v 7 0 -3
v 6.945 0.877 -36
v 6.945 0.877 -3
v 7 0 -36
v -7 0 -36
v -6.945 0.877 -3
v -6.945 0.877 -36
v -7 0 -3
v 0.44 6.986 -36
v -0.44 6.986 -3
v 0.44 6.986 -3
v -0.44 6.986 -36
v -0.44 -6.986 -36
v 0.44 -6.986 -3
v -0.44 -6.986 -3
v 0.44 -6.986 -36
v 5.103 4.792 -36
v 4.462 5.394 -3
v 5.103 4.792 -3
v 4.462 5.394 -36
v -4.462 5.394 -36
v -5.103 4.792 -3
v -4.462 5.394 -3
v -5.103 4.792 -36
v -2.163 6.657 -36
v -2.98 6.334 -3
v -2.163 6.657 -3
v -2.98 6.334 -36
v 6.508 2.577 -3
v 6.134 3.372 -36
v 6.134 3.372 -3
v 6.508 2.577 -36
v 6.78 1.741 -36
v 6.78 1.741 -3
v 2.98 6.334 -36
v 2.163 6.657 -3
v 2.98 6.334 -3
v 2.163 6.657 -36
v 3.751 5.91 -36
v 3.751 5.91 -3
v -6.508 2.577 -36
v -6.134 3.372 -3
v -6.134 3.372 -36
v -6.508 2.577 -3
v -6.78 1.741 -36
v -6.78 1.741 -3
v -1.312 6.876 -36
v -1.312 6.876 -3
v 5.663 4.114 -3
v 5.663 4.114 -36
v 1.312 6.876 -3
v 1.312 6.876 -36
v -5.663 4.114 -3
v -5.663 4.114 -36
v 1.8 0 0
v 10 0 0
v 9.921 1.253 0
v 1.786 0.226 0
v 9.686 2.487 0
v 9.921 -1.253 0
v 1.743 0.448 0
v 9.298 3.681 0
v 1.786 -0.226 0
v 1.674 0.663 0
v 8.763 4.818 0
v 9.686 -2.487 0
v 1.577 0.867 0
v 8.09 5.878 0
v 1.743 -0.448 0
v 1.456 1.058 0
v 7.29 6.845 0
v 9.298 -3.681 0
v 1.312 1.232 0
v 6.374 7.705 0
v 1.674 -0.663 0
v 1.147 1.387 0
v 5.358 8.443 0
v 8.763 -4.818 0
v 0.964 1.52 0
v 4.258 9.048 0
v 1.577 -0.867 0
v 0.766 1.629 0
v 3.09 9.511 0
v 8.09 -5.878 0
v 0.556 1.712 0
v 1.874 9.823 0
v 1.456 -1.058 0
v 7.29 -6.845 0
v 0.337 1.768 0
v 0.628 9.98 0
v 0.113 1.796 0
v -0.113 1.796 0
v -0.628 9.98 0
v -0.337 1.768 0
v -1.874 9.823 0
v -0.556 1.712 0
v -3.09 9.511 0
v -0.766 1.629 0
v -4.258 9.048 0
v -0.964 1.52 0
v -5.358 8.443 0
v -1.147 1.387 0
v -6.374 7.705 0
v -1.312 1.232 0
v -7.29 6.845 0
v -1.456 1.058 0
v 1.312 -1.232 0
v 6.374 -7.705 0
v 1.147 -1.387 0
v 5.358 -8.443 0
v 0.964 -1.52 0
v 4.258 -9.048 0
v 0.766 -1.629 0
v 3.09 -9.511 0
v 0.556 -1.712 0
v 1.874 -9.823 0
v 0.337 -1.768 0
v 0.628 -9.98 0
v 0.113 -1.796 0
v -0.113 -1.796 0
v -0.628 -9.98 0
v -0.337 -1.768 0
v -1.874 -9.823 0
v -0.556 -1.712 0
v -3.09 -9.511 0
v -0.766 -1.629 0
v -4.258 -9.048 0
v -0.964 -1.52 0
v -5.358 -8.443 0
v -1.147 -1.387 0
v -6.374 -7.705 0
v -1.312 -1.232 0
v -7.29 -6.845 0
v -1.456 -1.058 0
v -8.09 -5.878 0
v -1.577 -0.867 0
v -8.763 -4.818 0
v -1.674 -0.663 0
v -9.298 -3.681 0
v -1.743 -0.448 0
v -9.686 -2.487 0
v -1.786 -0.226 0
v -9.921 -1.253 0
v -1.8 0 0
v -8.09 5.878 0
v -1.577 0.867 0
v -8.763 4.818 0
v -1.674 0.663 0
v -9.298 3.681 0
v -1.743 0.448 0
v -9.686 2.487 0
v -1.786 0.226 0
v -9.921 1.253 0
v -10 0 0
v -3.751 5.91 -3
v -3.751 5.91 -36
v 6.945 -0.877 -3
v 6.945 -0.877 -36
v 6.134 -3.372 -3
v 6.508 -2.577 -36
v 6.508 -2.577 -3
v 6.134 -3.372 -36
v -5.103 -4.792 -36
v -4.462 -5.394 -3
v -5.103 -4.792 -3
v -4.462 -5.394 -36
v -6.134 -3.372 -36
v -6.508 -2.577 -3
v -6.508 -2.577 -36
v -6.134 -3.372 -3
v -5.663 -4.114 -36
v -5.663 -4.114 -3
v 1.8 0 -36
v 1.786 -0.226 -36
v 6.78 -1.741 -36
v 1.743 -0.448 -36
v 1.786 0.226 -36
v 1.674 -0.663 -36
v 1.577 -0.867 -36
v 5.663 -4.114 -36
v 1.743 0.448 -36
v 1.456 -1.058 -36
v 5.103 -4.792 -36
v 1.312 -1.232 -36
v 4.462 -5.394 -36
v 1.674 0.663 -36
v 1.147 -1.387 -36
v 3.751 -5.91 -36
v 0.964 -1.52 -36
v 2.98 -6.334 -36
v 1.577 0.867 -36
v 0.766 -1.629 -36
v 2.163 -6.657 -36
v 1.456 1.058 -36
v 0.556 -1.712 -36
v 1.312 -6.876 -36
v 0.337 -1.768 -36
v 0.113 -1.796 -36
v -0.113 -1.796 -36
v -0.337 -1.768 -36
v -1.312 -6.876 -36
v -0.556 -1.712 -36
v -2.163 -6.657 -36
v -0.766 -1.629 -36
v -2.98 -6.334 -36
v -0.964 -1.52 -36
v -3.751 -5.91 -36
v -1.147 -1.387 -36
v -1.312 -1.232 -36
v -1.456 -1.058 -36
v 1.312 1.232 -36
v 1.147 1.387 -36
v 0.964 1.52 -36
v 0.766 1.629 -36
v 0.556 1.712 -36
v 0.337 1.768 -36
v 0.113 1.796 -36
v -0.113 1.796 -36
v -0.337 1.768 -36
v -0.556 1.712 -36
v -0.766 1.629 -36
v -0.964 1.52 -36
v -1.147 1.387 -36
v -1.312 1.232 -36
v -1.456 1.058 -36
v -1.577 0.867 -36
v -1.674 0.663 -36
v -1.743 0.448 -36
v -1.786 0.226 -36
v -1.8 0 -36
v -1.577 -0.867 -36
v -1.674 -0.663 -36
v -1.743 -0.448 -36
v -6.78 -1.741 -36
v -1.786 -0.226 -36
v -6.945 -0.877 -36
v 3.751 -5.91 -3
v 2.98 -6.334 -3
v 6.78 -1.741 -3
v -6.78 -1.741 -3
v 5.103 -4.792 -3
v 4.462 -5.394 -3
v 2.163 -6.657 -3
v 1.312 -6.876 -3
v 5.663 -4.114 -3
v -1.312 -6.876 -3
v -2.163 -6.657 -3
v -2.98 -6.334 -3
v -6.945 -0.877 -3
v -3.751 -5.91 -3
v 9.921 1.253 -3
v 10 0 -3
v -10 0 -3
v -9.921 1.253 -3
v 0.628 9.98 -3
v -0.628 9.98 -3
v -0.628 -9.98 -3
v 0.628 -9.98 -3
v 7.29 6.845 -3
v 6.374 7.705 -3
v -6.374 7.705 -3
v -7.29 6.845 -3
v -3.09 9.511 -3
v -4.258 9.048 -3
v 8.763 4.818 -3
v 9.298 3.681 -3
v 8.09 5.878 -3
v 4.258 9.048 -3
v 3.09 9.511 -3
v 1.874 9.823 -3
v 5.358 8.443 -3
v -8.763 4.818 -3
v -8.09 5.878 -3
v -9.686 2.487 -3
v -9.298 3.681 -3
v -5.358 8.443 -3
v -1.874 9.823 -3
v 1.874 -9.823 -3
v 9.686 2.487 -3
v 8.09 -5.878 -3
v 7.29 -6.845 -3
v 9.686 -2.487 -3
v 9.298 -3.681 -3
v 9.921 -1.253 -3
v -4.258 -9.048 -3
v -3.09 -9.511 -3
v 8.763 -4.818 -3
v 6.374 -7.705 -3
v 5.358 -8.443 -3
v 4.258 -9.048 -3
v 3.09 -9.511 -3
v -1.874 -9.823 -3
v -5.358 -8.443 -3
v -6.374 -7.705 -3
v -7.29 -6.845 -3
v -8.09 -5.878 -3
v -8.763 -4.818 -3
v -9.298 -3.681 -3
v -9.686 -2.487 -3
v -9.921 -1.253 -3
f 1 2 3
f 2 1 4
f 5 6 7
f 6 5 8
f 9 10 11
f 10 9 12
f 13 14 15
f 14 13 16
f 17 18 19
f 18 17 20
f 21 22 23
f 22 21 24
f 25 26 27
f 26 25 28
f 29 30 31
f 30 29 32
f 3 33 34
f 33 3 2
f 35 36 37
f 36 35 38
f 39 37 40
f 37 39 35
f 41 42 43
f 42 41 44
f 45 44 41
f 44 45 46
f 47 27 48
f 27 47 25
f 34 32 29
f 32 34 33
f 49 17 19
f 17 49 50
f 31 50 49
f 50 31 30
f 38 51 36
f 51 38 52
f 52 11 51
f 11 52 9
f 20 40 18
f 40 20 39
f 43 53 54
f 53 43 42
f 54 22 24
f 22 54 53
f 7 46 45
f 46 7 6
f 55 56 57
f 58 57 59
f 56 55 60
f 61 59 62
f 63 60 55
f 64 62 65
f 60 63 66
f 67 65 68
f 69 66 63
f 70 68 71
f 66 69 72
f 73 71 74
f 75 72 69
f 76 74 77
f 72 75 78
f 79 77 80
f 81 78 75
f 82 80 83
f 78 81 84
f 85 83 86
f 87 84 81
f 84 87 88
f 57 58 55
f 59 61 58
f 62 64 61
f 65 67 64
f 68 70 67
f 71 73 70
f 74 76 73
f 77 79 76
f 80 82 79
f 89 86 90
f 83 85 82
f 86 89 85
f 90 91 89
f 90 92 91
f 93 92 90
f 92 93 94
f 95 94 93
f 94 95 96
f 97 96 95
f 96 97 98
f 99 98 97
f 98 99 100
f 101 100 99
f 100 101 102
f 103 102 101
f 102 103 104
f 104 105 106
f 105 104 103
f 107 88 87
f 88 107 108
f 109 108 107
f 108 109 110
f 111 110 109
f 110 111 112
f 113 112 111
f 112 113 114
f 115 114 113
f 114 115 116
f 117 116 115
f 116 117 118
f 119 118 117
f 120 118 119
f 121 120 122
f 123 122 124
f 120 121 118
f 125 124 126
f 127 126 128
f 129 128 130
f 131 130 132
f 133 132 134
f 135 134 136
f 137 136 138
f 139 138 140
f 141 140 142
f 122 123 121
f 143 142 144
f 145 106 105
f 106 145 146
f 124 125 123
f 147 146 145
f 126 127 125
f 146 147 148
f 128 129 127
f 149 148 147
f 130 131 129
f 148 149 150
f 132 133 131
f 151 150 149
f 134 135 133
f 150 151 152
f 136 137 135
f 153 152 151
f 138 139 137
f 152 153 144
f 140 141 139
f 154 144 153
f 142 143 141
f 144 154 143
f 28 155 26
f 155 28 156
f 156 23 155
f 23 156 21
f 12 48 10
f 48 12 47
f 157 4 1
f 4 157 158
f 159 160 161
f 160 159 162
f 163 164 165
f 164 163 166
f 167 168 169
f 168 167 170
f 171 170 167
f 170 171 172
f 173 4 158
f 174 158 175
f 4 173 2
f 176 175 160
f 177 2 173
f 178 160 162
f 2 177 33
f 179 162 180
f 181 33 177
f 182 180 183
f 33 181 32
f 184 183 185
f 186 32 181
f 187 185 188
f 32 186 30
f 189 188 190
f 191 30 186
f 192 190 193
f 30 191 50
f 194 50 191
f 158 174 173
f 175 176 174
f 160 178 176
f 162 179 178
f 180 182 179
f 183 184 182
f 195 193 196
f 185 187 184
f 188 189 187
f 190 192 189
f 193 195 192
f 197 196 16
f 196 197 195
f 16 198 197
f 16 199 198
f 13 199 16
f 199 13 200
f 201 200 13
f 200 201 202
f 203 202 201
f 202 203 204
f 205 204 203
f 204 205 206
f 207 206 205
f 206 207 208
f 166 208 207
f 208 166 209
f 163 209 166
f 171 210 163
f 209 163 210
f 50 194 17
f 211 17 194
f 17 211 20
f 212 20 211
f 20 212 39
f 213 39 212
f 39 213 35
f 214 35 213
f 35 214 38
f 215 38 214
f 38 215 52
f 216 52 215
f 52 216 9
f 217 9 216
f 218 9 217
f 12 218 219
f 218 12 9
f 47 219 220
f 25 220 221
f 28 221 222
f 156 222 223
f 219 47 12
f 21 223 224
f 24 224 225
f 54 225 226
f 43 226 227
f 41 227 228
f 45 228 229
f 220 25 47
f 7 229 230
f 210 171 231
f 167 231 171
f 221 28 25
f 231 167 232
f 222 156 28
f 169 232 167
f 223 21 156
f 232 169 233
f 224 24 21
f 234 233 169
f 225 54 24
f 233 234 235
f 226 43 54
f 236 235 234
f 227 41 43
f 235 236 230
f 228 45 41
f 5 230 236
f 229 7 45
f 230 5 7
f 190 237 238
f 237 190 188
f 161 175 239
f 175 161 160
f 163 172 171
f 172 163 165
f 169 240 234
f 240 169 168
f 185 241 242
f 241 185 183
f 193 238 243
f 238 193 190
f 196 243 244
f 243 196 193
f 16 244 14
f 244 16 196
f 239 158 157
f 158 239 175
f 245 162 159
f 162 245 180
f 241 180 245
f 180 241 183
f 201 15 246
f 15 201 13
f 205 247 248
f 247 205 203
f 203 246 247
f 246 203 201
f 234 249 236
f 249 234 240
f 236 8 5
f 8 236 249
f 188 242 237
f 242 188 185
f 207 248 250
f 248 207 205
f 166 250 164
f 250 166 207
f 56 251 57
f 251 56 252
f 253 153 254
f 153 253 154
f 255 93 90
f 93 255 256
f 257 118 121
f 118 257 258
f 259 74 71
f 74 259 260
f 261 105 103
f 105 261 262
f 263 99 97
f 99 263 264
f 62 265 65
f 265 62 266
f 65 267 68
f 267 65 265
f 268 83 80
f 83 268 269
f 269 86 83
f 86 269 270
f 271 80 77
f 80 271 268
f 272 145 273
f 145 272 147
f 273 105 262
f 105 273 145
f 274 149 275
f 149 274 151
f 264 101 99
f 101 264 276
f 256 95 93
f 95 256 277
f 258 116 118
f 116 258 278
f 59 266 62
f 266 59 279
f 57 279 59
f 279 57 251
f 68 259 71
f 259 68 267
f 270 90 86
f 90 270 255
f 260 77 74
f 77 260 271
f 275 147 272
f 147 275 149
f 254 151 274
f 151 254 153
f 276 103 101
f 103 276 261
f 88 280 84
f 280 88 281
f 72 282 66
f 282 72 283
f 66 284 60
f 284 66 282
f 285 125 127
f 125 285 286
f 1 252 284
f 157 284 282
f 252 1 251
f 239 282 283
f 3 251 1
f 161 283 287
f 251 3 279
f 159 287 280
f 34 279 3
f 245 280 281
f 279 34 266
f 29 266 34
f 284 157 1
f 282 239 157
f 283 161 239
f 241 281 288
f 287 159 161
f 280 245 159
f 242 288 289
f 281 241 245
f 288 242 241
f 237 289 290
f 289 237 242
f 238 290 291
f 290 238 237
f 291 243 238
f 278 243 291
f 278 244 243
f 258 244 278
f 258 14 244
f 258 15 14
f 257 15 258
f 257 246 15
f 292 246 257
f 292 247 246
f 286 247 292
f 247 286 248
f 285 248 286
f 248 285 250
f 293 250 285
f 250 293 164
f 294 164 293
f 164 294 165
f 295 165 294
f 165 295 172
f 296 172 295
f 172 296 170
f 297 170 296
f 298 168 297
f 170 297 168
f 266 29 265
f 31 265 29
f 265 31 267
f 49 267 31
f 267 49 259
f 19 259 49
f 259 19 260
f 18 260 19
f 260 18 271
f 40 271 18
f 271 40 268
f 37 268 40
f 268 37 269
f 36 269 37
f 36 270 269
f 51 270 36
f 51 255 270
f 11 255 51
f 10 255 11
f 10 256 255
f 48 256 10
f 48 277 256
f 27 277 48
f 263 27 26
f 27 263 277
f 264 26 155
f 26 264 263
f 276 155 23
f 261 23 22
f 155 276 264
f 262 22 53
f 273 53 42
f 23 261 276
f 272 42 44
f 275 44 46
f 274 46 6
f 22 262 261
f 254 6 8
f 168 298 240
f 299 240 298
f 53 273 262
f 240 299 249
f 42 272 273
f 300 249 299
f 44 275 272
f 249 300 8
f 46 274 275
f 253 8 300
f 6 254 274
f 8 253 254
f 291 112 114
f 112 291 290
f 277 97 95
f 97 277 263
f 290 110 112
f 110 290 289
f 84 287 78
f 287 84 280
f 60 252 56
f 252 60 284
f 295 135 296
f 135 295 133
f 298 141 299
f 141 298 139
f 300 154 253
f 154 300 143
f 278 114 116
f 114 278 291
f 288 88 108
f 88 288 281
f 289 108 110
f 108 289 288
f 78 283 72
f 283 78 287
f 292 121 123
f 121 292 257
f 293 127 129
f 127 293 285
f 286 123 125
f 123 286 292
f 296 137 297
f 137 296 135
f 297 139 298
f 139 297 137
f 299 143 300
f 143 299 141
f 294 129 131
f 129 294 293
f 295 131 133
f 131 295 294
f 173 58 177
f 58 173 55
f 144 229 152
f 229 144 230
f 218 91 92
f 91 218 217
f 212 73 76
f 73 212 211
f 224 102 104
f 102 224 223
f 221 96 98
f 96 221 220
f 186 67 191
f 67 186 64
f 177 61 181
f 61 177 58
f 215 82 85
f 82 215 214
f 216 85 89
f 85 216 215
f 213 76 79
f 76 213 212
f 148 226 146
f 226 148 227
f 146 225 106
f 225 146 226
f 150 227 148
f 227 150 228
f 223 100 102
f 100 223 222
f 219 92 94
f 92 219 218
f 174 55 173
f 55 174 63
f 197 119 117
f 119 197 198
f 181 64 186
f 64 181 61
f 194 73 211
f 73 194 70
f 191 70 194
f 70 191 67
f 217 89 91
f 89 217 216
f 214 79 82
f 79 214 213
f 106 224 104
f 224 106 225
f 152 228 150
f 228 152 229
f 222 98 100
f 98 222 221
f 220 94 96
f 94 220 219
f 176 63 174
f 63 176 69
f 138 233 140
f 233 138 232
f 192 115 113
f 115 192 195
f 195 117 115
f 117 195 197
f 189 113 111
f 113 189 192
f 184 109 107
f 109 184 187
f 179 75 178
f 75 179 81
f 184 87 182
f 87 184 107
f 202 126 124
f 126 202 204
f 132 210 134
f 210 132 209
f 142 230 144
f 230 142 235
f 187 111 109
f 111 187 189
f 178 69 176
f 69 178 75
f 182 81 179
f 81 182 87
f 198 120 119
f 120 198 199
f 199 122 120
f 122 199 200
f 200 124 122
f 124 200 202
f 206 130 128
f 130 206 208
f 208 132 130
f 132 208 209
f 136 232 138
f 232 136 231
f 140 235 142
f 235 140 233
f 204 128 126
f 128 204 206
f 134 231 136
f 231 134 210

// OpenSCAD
$fn = 50;


difference() {
	union() {
		translate(v = [0, 0, -36.0000000000]) {
			cylinder(h = 36, r = 7.0000000000);
		}
		translate(v = [0, 0, -3.0000000000]) {
			cylinder(h = 3, r = 10.0000000000);
		}
	}
	union() {
		#translate(v = [0, 0, -36]) {
			cylinder(h = 36, r = 1.8000000000);
		}
	}
}
